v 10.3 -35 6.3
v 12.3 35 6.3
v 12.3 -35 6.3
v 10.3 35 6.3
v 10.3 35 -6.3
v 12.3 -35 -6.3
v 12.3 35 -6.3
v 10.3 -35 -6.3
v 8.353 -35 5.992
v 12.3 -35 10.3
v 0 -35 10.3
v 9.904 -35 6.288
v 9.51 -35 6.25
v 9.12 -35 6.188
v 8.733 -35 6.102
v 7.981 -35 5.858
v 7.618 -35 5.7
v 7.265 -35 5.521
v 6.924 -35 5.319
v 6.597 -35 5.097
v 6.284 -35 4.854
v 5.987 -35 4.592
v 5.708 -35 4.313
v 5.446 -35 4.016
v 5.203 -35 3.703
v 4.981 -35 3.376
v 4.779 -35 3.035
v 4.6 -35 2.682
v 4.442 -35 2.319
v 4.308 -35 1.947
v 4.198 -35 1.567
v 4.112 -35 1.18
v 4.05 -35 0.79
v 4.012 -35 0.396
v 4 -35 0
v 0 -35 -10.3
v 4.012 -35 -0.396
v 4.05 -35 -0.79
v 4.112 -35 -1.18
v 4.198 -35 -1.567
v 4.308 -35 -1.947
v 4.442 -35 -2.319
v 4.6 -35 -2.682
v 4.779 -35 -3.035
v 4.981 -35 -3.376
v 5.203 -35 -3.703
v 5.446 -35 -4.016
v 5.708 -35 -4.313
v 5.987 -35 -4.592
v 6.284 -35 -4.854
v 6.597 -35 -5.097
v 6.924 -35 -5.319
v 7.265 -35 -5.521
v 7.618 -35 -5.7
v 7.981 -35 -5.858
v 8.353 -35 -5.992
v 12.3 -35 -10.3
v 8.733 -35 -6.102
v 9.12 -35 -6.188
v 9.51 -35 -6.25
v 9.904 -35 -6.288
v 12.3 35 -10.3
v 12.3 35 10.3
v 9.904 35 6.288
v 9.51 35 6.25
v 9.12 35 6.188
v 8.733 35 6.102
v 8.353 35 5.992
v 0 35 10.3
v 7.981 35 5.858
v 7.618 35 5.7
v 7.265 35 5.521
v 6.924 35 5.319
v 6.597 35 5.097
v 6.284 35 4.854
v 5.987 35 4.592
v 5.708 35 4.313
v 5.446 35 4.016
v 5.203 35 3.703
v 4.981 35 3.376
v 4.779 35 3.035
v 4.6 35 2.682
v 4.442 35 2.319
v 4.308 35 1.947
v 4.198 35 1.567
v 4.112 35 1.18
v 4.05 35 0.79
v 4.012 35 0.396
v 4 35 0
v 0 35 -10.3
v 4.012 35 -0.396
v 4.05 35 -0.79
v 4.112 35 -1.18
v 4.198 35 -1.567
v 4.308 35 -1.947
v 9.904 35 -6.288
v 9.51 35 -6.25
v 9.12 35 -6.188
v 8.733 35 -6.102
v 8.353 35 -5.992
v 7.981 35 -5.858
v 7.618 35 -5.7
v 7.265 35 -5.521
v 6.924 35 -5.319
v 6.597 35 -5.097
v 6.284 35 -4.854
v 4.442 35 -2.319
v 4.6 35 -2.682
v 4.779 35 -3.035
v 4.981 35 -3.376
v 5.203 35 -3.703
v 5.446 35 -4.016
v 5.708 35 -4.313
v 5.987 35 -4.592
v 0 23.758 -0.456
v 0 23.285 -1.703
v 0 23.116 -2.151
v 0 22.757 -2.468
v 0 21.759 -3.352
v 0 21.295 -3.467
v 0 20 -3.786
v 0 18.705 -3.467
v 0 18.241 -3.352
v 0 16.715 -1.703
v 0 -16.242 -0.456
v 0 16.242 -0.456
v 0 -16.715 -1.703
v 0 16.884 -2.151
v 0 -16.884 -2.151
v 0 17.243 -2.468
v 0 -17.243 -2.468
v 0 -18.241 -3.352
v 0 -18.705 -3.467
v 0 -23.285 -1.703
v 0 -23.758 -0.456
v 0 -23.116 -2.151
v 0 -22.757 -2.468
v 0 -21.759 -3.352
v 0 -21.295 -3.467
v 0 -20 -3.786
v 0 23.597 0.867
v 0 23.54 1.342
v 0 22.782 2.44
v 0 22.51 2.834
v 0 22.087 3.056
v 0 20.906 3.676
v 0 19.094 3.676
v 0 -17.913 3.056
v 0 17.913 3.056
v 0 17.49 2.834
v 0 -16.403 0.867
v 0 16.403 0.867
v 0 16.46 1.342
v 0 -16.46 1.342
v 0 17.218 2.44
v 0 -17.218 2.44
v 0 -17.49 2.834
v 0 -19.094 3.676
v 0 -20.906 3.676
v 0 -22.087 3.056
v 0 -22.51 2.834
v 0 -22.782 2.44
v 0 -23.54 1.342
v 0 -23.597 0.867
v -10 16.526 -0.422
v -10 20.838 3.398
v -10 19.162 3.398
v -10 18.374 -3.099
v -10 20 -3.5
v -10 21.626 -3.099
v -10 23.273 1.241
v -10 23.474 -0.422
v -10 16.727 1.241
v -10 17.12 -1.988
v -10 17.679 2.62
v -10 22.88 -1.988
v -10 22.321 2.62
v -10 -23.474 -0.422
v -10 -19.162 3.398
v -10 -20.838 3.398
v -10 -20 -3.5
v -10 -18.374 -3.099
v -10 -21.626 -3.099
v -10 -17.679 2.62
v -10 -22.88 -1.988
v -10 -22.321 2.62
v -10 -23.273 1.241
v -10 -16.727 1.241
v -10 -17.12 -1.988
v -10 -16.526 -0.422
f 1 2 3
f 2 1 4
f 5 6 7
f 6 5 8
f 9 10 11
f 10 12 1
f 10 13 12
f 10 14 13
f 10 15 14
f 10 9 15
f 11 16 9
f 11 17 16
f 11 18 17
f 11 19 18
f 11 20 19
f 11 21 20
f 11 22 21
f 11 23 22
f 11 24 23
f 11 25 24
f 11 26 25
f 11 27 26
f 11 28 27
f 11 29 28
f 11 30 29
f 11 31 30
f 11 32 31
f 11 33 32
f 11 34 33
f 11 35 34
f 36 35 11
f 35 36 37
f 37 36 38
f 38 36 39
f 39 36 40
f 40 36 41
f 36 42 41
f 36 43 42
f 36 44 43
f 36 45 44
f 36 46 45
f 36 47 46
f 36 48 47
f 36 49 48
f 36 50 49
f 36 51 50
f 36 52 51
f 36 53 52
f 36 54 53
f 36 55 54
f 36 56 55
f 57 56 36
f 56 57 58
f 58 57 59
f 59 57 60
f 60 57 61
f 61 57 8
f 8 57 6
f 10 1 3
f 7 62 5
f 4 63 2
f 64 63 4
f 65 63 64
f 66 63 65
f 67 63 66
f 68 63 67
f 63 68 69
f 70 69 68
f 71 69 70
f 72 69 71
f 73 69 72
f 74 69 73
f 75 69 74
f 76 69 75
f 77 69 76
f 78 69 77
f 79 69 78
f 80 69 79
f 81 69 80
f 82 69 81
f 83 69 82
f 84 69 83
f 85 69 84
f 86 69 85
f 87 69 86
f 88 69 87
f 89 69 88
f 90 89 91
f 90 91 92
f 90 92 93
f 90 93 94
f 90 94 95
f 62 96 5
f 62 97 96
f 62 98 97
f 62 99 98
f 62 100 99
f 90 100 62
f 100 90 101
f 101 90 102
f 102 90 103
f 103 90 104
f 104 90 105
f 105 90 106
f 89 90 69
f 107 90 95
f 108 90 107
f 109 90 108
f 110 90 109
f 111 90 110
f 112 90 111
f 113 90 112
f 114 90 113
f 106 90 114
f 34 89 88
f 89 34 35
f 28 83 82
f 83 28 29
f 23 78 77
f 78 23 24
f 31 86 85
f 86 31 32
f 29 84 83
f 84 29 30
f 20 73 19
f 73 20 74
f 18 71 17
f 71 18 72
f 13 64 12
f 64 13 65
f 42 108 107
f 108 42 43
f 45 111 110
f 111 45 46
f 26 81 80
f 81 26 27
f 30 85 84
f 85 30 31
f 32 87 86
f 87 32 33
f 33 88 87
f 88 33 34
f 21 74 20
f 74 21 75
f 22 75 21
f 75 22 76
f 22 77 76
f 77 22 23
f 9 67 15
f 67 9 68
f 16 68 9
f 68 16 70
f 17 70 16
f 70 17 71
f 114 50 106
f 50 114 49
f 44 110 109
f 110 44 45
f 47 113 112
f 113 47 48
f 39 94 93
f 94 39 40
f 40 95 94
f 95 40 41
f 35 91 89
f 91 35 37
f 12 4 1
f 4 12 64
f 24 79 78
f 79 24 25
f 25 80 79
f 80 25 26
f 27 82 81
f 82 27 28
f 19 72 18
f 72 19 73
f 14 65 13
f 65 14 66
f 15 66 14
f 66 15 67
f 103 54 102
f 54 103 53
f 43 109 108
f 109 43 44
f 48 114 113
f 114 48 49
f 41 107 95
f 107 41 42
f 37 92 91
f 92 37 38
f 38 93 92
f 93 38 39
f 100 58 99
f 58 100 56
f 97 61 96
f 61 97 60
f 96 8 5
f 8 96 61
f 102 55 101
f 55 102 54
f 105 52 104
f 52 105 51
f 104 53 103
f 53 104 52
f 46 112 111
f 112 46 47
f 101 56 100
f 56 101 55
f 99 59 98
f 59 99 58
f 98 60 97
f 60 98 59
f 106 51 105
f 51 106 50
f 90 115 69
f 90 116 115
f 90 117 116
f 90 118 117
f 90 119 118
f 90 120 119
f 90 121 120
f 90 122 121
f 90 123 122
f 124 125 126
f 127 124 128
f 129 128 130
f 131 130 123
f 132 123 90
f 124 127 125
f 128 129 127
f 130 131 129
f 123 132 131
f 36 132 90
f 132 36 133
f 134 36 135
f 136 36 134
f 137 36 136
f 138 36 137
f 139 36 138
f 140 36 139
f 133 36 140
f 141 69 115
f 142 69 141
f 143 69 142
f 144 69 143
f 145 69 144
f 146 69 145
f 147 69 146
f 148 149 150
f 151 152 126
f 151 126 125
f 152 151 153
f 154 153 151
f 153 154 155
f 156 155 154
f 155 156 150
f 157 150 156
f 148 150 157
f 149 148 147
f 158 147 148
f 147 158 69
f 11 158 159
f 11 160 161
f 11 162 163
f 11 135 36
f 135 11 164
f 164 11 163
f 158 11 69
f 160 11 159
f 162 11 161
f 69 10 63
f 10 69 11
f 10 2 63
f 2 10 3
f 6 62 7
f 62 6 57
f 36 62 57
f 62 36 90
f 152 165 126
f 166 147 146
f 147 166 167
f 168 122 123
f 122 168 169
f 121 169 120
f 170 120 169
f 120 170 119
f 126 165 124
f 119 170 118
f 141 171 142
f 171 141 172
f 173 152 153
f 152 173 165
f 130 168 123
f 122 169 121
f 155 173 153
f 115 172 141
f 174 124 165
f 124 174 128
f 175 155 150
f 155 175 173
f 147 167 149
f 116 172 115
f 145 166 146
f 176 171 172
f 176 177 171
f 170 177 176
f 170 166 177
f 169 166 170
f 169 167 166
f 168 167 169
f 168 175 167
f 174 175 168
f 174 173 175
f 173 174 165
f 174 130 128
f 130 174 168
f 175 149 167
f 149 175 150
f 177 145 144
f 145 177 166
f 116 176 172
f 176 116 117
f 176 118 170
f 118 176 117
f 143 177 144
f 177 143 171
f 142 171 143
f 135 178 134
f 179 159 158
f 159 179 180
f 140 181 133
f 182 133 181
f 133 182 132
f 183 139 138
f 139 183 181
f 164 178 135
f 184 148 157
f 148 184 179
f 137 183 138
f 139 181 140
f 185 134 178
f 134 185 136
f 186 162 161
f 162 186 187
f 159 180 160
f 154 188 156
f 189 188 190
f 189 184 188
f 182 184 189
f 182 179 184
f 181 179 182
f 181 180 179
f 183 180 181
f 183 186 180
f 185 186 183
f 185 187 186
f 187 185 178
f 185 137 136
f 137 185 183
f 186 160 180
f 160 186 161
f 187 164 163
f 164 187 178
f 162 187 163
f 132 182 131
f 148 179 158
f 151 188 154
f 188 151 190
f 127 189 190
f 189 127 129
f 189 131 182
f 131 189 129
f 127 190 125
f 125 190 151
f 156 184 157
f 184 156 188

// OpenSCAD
free_width=8;
table_height=11.6;

module chairHolder(hole_diametre, depth) {
    solid_width=free_width/2;
    hole_radius=hole_diametre/2;
    empty=1;
    union(){
        translate([solid_width/2,0,0]){
            cube([solid_width,depth,hole_diametre], true); //solid
        }
        translate([solid_width,0,0]){
            difference(){ //solid with hole
                translate([hole_radius/2,0,0]){
                    cube([hole_radius,depth,hole_diametre], true); 
                }
                translate([hole_radius,0,0]){
                    rotate([90,0,0]){
                        $fn=100;
                        cylinder(depth+empty,hole_radius,hole_radius,true);
                    }
                }
            }
        }
    }
}

module chairHolderThikness(hole_diametre, depth, thickness,extra_long){
    solid_width=free_width/2;
    long=solid_width+(hole_diametre/2)+extra_long;
    translate([0,-depth/2,hole_diametre/2]){
        cube([long,depth,thickness]);
    }
    translate([0,-depth/2,-hole_diametre/2-thickness]){
        cube([long,depth,thickness]);
    }
}

module nail(){
    translate([-14/2+4,0,0]){
        rotate([0,90,0]){
            cylinder(14,7/2,7.8/2,true);
        }
    }
}
module chairNails(){
    translate([0,20,0]){
        nail();
    }
    translate([0,-20,0]){
        nail();
    }
}

module supports(thick, hole){
    depth=70;
    wide=10-hole;
    translate([-wide-hole,0,-thick/2]){
        translate([0,-depth/2,0]){
            cube([wide,11-hole,thick]);
        }
        long=32-(2*hole);
        translate([0,-long/2,0]){
            cube([wide,long,thick]);
        }
    }
}


extra=1; // maybe 0
hole_diametre=table_height + extra;
depth=70;
chairHolder(hole_diametre, depth);
chairHolderThikness(hole_diametre, depth, 4, 2);
chairNails();
//supports(2,0.5);



module letter(l,s,h) {
	linear_extrude(height = h) {
		text(l, size = s, font = "Veltica", halign = "center", valign = "center", $fn = 16);
	}
}
